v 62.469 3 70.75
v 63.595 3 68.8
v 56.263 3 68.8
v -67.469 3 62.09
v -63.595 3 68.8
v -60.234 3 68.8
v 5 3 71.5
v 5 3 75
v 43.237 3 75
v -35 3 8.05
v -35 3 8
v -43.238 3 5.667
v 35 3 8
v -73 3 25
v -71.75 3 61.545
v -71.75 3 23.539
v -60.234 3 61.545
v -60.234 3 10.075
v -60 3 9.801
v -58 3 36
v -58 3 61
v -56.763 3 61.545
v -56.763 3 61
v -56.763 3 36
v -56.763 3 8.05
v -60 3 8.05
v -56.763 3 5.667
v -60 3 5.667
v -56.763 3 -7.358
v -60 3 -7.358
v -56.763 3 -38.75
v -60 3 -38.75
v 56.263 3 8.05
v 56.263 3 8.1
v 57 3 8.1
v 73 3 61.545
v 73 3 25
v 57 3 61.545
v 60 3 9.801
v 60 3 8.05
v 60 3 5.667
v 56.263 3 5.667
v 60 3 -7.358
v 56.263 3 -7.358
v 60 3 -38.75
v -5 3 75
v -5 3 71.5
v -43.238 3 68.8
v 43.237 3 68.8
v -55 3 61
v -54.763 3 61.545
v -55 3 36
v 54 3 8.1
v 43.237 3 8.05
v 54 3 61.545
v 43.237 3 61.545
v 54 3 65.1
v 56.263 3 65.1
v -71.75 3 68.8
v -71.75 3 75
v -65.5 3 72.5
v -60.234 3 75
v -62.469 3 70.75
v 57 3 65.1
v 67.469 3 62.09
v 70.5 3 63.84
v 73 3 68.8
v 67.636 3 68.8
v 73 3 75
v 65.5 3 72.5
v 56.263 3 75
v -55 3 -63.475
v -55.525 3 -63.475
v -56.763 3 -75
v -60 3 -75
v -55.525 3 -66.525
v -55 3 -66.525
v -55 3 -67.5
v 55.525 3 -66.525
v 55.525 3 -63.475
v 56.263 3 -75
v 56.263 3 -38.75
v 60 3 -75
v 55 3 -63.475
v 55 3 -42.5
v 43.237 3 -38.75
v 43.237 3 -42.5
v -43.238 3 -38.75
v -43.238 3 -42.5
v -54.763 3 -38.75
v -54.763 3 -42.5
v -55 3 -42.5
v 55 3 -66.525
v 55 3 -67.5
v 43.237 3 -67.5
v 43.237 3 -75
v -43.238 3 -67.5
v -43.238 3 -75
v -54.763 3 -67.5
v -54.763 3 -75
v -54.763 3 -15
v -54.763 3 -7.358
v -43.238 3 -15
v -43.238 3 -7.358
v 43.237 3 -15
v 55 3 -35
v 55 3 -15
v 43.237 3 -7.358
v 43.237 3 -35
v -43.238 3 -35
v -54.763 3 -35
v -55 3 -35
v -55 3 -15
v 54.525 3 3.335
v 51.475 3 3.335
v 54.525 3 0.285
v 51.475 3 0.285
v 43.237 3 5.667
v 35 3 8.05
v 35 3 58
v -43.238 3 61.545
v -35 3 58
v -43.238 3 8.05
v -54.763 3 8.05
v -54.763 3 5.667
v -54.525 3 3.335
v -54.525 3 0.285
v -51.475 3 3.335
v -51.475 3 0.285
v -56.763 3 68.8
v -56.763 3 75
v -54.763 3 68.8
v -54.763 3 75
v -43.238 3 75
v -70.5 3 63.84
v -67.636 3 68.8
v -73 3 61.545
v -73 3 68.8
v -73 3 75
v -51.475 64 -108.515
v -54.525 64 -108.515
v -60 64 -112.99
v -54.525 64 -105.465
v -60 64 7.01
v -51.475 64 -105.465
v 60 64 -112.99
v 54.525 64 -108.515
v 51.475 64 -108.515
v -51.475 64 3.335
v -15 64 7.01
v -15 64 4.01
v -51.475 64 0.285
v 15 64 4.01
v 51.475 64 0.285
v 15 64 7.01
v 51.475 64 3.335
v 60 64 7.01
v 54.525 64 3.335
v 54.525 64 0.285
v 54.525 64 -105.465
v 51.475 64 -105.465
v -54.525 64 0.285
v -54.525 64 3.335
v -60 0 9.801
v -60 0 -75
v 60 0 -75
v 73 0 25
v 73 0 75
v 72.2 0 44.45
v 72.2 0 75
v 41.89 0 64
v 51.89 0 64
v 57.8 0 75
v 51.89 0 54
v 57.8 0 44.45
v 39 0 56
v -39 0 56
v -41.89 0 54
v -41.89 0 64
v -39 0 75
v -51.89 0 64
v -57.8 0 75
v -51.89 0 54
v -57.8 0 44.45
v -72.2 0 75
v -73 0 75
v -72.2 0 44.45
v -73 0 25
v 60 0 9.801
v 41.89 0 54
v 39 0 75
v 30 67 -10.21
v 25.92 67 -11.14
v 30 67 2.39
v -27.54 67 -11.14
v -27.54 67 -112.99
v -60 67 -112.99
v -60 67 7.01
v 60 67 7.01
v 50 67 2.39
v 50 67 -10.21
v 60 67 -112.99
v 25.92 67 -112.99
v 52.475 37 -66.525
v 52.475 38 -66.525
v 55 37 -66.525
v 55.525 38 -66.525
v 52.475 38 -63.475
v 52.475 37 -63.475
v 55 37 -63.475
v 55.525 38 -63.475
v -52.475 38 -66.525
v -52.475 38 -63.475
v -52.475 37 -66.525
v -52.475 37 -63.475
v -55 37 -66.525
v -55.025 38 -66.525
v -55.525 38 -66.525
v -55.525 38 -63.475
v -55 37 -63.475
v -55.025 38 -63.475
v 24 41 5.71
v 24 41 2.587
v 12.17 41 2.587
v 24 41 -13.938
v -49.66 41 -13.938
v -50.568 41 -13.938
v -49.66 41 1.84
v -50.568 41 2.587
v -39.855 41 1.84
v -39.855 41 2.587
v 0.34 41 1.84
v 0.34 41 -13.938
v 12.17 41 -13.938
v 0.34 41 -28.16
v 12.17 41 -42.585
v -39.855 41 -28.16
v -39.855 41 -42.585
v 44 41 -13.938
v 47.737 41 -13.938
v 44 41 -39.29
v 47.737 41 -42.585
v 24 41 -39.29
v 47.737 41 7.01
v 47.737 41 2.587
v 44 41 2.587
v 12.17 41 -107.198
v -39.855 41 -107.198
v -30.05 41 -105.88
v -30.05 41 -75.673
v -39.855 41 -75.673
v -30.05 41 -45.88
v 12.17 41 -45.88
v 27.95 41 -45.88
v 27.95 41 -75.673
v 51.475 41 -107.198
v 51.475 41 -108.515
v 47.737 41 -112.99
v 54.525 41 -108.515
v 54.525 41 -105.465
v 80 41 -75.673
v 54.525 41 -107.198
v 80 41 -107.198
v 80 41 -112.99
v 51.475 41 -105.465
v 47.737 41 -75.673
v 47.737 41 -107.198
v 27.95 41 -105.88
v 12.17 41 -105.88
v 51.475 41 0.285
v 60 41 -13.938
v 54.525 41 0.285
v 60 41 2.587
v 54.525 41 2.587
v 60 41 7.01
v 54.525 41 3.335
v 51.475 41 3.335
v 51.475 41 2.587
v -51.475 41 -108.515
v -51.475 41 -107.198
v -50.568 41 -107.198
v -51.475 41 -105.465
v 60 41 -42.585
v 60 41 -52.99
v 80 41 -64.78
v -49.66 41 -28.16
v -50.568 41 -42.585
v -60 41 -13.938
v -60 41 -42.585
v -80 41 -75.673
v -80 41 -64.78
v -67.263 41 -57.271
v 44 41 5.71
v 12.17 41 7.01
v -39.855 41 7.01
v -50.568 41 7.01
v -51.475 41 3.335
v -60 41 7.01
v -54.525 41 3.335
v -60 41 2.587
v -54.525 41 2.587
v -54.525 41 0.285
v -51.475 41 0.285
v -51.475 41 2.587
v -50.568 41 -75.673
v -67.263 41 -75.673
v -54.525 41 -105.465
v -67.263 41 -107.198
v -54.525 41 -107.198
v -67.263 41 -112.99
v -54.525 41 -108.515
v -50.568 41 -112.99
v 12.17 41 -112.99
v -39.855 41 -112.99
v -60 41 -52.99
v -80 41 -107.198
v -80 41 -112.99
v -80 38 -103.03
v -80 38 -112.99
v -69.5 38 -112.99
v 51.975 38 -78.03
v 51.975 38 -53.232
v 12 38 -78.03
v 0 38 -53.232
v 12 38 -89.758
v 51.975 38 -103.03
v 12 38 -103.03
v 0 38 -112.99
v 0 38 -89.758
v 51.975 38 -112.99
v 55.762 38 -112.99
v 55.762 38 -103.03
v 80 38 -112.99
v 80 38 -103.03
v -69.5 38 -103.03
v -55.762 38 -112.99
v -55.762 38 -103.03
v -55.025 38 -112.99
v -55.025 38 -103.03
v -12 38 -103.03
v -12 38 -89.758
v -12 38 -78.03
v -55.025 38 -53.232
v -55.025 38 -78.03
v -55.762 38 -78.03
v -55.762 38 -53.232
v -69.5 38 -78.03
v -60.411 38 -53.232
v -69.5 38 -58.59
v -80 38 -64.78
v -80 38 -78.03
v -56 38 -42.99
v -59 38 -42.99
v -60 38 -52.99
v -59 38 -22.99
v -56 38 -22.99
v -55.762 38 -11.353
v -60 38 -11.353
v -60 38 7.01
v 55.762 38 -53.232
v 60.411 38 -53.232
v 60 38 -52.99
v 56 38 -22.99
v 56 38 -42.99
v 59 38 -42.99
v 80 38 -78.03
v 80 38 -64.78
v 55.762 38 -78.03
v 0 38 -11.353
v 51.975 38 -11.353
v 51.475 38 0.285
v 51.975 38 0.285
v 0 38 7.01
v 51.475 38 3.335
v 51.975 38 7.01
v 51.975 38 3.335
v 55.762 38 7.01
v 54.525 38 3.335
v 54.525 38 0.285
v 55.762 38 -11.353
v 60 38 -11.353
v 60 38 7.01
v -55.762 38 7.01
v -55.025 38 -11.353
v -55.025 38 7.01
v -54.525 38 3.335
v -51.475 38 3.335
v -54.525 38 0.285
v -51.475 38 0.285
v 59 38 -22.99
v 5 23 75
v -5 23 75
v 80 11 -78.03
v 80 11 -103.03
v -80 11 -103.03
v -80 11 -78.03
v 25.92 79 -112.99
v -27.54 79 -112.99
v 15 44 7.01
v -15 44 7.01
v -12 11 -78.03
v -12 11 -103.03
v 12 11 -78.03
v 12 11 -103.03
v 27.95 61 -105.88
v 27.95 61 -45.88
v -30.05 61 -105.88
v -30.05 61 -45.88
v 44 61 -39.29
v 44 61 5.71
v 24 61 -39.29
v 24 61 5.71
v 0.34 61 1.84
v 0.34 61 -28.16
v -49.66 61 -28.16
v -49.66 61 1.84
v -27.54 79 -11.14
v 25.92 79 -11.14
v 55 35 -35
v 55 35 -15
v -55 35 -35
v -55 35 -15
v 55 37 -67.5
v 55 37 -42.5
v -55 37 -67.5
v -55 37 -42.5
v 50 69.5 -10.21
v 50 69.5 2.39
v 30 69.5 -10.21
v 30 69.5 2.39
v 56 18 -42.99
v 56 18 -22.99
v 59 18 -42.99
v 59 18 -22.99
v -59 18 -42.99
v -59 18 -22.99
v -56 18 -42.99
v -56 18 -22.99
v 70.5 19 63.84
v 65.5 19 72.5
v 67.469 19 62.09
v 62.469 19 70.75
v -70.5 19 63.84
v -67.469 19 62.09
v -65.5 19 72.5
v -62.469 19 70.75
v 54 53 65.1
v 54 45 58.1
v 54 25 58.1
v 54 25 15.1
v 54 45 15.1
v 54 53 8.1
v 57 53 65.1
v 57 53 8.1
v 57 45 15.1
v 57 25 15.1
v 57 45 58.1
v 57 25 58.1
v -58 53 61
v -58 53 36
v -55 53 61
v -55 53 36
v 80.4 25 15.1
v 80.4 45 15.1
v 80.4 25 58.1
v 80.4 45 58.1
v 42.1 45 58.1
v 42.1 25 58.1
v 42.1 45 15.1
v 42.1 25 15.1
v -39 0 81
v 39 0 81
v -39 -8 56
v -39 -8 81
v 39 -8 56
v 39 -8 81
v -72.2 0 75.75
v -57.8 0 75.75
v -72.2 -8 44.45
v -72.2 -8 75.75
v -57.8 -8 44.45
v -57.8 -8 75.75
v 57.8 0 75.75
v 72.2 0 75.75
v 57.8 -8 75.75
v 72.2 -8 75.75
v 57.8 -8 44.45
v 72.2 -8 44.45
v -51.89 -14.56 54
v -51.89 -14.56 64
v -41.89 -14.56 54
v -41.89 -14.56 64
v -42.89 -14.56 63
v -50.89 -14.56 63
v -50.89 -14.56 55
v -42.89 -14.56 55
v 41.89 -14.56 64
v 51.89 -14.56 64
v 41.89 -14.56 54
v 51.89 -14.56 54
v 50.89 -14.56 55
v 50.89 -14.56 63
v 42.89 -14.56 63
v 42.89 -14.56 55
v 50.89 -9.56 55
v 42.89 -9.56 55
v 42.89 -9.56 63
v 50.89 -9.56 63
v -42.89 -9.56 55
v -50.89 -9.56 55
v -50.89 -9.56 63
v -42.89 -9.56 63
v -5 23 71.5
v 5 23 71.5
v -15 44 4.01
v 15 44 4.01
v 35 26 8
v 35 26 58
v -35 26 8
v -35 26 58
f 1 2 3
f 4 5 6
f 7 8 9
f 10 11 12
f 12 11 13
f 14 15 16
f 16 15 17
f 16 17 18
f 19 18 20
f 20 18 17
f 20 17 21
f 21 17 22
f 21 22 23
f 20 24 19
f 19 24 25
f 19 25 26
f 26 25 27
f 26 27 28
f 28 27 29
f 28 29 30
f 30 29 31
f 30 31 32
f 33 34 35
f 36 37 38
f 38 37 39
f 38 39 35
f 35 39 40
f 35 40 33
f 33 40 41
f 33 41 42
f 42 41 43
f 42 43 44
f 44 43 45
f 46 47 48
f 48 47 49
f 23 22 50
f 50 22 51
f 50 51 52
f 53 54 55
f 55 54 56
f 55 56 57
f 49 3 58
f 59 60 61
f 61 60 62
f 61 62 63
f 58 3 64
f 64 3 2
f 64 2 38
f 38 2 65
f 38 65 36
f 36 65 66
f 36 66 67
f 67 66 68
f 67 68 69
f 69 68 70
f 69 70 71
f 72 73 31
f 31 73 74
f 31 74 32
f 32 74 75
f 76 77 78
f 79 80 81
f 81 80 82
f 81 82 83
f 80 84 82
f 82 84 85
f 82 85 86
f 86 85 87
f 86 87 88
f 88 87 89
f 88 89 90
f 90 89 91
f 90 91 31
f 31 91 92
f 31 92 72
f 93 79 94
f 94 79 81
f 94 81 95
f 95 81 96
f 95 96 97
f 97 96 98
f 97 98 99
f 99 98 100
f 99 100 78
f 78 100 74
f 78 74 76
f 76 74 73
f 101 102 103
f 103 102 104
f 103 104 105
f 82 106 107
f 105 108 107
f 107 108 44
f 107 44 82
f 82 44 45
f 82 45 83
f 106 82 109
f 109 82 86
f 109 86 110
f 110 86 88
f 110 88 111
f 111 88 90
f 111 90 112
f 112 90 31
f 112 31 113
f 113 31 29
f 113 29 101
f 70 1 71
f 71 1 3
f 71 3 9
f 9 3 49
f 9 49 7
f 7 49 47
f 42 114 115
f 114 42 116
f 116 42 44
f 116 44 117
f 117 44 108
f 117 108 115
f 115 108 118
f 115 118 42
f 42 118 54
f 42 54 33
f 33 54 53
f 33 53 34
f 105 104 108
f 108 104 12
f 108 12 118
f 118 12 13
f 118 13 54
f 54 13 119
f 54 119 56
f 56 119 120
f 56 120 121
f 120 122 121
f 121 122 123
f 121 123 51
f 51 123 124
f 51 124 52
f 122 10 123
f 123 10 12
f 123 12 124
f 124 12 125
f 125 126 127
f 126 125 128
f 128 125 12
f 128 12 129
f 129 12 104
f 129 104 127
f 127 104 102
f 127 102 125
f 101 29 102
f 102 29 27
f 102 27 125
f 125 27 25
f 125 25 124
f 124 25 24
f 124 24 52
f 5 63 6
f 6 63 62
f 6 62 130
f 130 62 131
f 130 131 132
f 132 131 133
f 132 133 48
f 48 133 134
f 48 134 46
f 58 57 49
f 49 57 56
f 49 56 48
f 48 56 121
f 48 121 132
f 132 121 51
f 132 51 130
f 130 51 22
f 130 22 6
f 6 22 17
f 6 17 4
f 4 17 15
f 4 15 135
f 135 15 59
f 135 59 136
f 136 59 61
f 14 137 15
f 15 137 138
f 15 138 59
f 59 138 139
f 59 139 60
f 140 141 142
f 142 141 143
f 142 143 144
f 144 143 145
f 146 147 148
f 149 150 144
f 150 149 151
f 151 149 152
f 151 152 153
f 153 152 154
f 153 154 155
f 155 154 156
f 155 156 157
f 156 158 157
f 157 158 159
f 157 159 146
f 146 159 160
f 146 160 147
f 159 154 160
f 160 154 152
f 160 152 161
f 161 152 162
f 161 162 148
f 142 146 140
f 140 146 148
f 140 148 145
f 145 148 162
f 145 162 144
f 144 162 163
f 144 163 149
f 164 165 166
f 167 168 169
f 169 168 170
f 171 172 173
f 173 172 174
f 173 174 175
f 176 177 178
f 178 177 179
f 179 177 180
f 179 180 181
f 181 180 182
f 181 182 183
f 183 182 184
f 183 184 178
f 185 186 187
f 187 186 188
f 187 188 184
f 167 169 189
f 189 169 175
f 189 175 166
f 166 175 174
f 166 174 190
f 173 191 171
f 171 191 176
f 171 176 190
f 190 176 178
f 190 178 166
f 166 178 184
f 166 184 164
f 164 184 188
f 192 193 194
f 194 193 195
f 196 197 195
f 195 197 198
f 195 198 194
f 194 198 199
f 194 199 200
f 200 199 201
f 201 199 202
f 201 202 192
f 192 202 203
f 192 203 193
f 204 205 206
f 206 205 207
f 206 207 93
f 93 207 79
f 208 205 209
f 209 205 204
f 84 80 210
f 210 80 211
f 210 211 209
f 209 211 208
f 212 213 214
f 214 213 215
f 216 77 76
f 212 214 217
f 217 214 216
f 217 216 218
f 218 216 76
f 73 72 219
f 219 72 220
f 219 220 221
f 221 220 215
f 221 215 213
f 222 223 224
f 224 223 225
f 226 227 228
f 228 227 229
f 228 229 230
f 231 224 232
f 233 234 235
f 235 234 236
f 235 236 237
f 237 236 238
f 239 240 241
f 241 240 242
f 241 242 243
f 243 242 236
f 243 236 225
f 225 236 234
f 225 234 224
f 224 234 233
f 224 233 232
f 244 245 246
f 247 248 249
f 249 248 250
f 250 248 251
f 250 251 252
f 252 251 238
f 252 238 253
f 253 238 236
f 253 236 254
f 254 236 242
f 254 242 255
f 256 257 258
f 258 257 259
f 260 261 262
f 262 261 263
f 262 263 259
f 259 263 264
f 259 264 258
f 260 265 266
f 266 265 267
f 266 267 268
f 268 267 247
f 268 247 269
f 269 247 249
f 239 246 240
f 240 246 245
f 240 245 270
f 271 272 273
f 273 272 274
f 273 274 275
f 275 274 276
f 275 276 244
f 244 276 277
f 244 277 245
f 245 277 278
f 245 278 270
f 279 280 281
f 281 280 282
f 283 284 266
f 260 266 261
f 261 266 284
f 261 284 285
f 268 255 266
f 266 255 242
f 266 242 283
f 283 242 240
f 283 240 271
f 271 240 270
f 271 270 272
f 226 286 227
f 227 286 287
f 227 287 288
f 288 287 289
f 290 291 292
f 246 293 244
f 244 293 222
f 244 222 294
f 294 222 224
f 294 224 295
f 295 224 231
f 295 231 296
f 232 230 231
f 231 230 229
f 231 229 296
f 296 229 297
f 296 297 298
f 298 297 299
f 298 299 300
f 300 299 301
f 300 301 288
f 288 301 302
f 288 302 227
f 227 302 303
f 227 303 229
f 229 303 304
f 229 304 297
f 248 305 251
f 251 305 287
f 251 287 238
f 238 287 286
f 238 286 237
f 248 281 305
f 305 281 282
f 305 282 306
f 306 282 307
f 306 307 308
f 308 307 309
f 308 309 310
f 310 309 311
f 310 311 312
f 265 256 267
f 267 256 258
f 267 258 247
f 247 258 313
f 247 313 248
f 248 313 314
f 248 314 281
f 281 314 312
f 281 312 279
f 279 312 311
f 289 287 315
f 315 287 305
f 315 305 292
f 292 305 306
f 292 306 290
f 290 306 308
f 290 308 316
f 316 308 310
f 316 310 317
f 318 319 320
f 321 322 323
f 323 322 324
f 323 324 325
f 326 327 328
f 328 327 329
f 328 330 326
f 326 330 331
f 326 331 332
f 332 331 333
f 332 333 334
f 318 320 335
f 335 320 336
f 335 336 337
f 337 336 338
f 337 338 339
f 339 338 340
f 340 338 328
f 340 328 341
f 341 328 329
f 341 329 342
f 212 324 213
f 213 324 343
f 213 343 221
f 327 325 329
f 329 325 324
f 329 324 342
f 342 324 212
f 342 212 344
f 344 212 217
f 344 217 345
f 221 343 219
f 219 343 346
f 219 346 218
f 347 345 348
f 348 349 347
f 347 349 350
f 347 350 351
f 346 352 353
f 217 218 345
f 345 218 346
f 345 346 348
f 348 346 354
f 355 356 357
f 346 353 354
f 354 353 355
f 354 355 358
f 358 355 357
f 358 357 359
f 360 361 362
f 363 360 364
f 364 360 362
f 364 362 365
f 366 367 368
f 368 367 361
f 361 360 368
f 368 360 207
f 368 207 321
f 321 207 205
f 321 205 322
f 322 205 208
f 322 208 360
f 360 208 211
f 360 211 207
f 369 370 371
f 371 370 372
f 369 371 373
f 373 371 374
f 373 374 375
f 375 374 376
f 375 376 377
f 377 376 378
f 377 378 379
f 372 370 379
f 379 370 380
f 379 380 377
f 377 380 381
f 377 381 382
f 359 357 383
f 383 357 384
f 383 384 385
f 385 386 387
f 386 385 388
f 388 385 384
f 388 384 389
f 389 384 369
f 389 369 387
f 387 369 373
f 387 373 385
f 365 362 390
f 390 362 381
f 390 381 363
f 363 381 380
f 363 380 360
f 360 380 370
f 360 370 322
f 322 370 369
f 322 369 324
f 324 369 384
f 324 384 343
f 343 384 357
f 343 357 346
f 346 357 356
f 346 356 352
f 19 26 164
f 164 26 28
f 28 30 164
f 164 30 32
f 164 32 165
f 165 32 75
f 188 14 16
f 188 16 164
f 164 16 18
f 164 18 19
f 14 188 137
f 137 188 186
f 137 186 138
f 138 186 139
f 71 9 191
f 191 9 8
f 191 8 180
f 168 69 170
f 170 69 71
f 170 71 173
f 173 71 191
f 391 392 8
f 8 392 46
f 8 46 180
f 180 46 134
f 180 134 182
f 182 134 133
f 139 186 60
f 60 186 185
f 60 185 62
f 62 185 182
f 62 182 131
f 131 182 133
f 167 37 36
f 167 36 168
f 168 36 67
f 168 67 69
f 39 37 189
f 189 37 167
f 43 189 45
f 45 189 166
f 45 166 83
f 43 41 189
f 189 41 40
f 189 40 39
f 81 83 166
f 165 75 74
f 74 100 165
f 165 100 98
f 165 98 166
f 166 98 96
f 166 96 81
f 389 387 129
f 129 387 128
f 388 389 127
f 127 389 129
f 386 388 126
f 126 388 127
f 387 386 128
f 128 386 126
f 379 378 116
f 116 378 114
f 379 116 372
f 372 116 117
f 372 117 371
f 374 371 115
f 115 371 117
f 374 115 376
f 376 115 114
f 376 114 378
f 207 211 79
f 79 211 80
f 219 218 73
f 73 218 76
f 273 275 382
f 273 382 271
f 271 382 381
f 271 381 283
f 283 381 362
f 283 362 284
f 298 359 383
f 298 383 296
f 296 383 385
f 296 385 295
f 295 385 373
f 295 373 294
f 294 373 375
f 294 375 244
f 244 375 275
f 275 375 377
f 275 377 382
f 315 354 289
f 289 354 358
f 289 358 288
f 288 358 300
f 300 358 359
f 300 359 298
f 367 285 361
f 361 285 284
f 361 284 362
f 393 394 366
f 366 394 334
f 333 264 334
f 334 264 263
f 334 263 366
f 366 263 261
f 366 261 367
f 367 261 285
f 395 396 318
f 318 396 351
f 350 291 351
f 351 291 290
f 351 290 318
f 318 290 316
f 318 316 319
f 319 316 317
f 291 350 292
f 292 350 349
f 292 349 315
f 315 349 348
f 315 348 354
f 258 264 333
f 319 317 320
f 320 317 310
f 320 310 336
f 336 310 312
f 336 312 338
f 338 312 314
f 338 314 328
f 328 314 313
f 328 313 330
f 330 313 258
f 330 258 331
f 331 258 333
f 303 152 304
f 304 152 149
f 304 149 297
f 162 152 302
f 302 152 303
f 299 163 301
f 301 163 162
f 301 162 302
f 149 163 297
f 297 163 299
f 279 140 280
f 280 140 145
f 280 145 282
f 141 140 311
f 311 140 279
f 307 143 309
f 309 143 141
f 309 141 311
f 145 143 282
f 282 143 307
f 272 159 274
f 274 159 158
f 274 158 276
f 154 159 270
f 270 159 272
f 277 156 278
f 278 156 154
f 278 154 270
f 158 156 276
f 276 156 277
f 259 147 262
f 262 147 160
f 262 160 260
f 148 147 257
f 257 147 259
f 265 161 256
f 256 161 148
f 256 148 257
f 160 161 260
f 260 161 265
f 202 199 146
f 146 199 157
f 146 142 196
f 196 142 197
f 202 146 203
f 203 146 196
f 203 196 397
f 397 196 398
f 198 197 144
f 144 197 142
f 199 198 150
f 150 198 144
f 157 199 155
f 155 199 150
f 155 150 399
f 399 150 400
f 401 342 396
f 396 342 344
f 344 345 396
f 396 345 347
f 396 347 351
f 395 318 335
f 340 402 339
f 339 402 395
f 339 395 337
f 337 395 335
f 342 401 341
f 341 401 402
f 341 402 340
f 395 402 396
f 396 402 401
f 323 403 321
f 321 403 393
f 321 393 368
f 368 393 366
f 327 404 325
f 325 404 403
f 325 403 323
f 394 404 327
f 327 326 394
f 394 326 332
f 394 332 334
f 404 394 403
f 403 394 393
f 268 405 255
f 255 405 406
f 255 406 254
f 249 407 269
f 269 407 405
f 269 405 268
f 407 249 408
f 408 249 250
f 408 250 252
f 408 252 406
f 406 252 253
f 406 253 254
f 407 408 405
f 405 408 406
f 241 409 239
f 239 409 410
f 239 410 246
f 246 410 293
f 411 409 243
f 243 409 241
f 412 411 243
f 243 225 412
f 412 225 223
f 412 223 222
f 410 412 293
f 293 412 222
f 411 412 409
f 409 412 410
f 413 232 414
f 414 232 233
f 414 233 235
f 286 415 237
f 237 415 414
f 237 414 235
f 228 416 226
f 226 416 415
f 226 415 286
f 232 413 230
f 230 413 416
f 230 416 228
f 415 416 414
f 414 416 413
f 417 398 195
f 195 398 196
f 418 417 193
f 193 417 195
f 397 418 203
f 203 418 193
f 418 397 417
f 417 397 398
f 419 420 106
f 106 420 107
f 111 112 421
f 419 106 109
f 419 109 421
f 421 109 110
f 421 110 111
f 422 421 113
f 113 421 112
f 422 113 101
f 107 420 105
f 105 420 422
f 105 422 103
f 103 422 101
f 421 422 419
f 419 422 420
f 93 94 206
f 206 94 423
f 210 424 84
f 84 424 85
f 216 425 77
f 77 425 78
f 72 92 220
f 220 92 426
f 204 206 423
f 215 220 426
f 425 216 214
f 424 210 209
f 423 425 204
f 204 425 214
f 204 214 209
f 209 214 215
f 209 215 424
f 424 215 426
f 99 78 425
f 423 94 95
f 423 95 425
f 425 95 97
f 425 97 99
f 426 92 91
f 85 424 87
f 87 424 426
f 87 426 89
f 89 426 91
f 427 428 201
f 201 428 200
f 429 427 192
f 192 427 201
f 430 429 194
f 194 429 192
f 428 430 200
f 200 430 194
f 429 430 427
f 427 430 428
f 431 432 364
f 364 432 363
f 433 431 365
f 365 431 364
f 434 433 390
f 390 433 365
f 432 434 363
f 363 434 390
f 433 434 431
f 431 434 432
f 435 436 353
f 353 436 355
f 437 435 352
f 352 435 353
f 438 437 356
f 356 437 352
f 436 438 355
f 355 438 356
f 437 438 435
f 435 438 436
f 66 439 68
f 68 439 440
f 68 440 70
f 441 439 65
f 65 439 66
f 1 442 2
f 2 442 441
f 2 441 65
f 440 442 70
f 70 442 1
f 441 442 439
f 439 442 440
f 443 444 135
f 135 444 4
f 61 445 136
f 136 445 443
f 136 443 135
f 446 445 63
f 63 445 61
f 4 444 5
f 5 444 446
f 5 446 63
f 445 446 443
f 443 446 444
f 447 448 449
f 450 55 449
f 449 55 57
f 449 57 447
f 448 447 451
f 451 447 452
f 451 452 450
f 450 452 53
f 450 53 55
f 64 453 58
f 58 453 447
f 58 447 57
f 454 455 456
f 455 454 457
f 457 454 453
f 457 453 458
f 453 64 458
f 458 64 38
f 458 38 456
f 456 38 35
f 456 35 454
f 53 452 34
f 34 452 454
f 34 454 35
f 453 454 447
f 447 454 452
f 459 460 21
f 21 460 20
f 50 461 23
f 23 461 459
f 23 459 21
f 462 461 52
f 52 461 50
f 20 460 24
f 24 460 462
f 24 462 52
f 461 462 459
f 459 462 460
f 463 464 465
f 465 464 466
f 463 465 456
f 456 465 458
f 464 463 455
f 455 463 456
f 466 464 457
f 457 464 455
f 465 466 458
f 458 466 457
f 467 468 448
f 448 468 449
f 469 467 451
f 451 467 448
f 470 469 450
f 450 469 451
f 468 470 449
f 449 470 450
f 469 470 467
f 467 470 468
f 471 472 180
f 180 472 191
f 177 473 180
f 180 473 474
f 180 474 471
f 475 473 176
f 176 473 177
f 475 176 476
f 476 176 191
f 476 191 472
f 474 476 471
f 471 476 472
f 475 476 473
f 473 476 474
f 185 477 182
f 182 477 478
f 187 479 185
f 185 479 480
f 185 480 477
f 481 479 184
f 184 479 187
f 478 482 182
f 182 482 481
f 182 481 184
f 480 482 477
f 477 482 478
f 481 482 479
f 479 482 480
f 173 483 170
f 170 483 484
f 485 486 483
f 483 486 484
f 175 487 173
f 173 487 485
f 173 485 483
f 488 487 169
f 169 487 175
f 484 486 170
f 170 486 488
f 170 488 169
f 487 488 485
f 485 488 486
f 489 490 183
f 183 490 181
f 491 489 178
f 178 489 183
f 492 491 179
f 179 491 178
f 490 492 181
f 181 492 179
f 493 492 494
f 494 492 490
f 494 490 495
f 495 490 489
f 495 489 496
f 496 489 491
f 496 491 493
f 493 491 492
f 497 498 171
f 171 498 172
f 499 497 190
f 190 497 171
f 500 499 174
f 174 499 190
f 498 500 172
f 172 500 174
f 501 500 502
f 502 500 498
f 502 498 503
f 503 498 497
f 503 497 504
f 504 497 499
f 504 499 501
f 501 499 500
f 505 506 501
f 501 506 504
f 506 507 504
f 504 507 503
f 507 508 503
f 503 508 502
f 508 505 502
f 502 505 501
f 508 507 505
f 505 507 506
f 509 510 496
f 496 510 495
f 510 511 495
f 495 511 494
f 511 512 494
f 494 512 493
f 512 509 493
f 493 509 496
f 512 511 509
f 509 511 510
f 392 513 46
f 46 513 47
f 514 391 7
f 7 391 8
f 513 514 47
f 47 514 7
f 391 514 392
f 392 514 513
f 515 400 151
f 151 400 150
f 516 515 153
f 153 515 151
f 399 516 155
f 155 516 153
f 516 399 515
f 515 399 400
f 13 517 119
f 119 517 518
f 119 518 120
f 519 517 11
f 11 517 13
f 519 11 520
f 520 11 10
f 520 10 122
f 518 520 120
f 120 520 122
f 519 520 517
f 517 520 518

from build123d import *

# Parameters (mm, degrees)
BOSS_EXTRUDE1_DEPTH       = 3
SKETCH2_W                 = 3.05
SKETCH2_H                 = 3.05
BOSS_EXTRUDE2_DEPTH       = 35
SKETCH3_W                 = 120
SKETCH3_H                 = 120
BOSS_EXTRUDE3_DEPTH       = 3
SKETCH4_W                 = 3.05
SKETCH4_H                 = 3.05
BOSS_EXTRUDE4_DEPTH       = 23
SKETCH6_W                 = 120
SKETCH6_H                 = 120
BOSS_EXTRUDE5_DEPTH       = 3
SKETCH7_W                 = 68
SKETCH7_H                 = 25
BOSS_EXTRUDE6_DEPTH       = 27
SKETCH9_W                 = 58
SKETCH9_H                 = 60
SKETCH9_W_2               = 20
SKETCH9_H_2               = 45
SKETCH9_W_3               = 50
SKETCH9_H_3               = 30
BOSS_EXTRUDE7_DEPTH       = 20
SKETCH10_W                = 53.46
SKETCH10_H                = 101.85
BOSS_EXTRUDE8_DEPTH       = 12
SKETCH11_W                = 110
SKETCH11_H                = 20
BOSS_EXTRUDE9_DEPTH       = 32
SKETCH12_W                = 110
SKETCH12_H                = 25
BOSS_EXTRUDE10_DEPTH      = 34
SKETCH13_W                = 20
SKETCH13_H                = 12.6
BOSS_EXTRUDE11_DEPTH      = 2.5
SKETCH14_W                = 3
SKETCH14_H                = 20
BOSS_EXTRUDE12_DEPTH      = 20
BOSS_EXTRUDE13_DEPTH      = 16
SKETCH16_W                = 3
SKETCH16_H                = 57
SKETCH16_H_2              = 25
BOSS_EXTRUDE14_DEPTH      = 50
BOSS_EXTRUDE15_DEPTH      = 23.4
BOSS_EXTRUDE15_DEPTH_BACK = 14.9
SKETCH17_W                = 43
SKETCH17_H                = 20
SKETCH18_W                = 78
SKETCH18_H                = 25
SKETCH18_W_2              = 14.4
SKETCH18_H_2              = 31.3
BOSS_EXTRUDE16_DEPTH      = 8
SKETCH20_W                = 10
SKETCH20_H                = 10
BOSS_EXTRUDE18_DEPTH      = 14.56
SKETCH21_W                = 8
SKETCH21_H                = 8
CUT_EXTRUDE1_DEPTH        = 5
SKETCH22_W                = 10
SKETCH22_H                = 3.5
BOSS_EXTRUDE19_DEPTH      = 20
SKETCH23_W                = 30
SKETCH23_H                = 3
BOSS_EXTRUDE20_DEPTH      = 20
SKETCH24_W                = 70
SKETCH24_H                = 50
BOSS_EXTRUDE21_DEPTH      = 23


with BuildPart() as part:
    # Sketch1 → Boss-Extrude1 (new body)
    with BuildSketch(Plane(origin=(0, 0, 0), x_dir=(1, 0, 0), z_dir=(0, 1, 0))):
        Polygon((-73, -25), (-60, -9.801315846), (-60, 75), (60, 75), (60, -9.801315846), (73, -25), (73, -75), (60, -75), (-60, -75), (-73, -75), align=None)
    extrude(amount=BOSS_EXTRUDE1_DEPTH)

    # Sketch2 → Boss-Extrude2 (add)
    with BuildSketch(Plane(origin=(0, 3, 0), x_dir=(1, 0, 0), z_dir=(0, 1, 0))):
        with Locations((-53, -1.81)):
            Rectangle(SKETCH2_W, SKETCH2_H)
        with Locations((53, -1.81)):
            Rectangle(SKETCH2_W, SKETCH2_H)
        with Locations((54, 65)):
            Rectangle(SKETCH2_W, SKETCH2_H)
        with Locations((-54, 65)):
            Rectangle(SKETCH2_W, SKETCH2_H)
    extrude(amount=BOSS_EXTRUDE2_DEPTH)

    # Sketch3 → Boss-Extrude3 (add)
    with BuildSketch(Plane(origin=(0, 38, 0), x_dir=(1, 0, 0), z_dir=(0, 1, 0))):
        Polygon((-80, 64.780305915), (-60, 52.99), (-60, 112.99), (-80, 112.99), align=None)
        with Locations((0, 52.99)):
            Rectangle(SKETCH3_W, SKETCH3_H)
        Polygon((60, 112.99), (60, 52.99), (80, 64.780305915), (80, 112.99), align=None)
    extrude(amount=BOSS_EXTRUDE3_DEPTH)

    # Sketch4 → Boss-Extrude4 (add)
    with BuildSketch(Plane(origin=(0, 41, 0), x_dir=(1, 0, 0), z_dir=(0, 1, 0))):
        with Locations((-53, -1.81)):
            Rectangle(SKETCH4_W, SKETCH4_H)
        with Locations((-53, 106.99)):
            Rectangle(SKETCH4_W, SKETCH4_H)
        with Locations((53, -1.81)):
            Rectangle(SKETCH4_W, SKETCH4_H)
        with Locations((53, 106.99)):
            Rectangle(SKETCH4_W, SKETCH4_H)
    extrude(amount=BOSS_EXTRUDE4_DEPTH)

    # Sketch6 → Boss-Extrude5 (add)
    with BuildSketch(Plane(origin=(0, 64, 0), x_dir=(1, 0, 0), z_dir=(0, 1, 0))):
        with Locations((0, 52.99)):
            Rectangle(SKETCH6_W, SKETCH6_H)
    extrude(amount=BOSS_EXTRUDE5_DEPTH)

    # Sketch7 → Boss-Extrude6 (add)
    with BuildSketch(Plane.XZ.offset(-38)):
        with Locations((-46, -90.53)):
            Rectangle(SKETCH7_W, SKETCH7_H)
        with Locations((46, -90.53)):
            Rectangle(SKETCH7_W, SKETCH7_H)
    extrude(amount=BOSS_EXTRUDE6_DEPTH)

    # Sketch9 → Boss-Extrude7 (add)
    with BuildSketch(Plane(origin=(0, 41, 0), x_dir=(1, 0, 0), z_dir=(0, 1, 0))):
        with Locations((-1.05, 75.88)):
            Rectangle(SKETCH9_W, SKETCH9_H)
        with Locations((34, 16.79)):
            Rectangle(SKETCH9_W_2, SKETCH9_H_2)
        with Locations((-24.66, 13.16)):
            Rectangle(SKETCH9_W_3, SKETCH9_H_3)
    extrude(amount=BOSS_EXTRUDE7_DEPTH)

    # Sketch10 → Boss-Extrude8 (add)
    with BuildSketch(Plane(origin=(0, 67, 0), x_dir=(1, 0, 0), z_dir=(0, 1, 0))):
        with Locations((-0.81, 62.065)):
            Rectangle(SKETCH10_W, SKETCH10_H)
    extrude(amount=BOSS_EXTRUDE8_DEPTH)

    # Sketch11 → Boss-Extrude9 (add)
    with BuildSketch(Plane(origin=(0, 3, 0), x_dir=(1, 0, 0), z_dir=(0, 1, 0))):
        with Locations((0, 25)):
            Rectangle(SKETCH11_W, SKETCH11_H)
    extrude(amount=BOSS_EXTRUDE9_DEPTH)

    # Sketch12 → Boss-Extrude10 (add)
    with BuildSketch(Plane(origin=(0, 3, 0), x_dir=(1, 0, 0), z_dir=(0, 1, 0))):
        with Locations((0, 55)):
            Rectangle(SKETCH12_W, SKETCH12_H)
    extrude(amount=BOSS_EXTRUDE10_DEPTH)

    # Sketch13 → Boss-Extrude11 (add)
    with BuildSketch(Plane(origin=(0, 67, 0), x_dir=(1, 0, 0), z_dir=(0, 1, 0))):
        with Locations((40, 3.91)):
            Rectangle(SKETCH13_W, SKETCH13_H)
    extrude(amount=BOSS_EXTRUDE11_DEPTH)

    # Sketch14 → Boss-Extrude12 (add)
    with BuildSketch(Plane(origin=(0, 38, 0), x_dir=(1, 0, 0), z_dir=(0, 1, 0))):
        with Locations((57.5, 32.99)):
            Rectangle(SKETCH14_W, SKETCH14_H)
        with Locations((-57.5, 32.99)):
            Rectangle(SKETCH14_W, SKETCH14_H)
    extrude(amount=-BOSS_EXTRUDE12_DEPTH)

    # Sketch15 → Boss-Extrude13 (add)
    with BuildSketch(Plane(origin=(0, 3, 0), x_dir=(1, 0, 0), z_dir=(0, 1, 0))):
        Polygon((65.5, -72.5), (62.468911087, -70.75), (67.468911087, -62.089745962), (70.5, -63.839745962), align=None)
        Polygon((-70.5, -63.839745962), (-65.5, -72.5), (-62.468911087, -70.75), (-67.468911087, -62.089745962), align=None)
    extrude(amount=BOSS_EXTRUDE13_DEPTH)

    # Sketch16 → Boss-Extrude14 (add)
    with BuildSketch(Plane(origin=(0, 3, 0), x_dir=(1, 0, 0), z_dir=(0, 1, 0))):
        with Locations((55.5, -36.6)):
            Rectangle(SKETCH16_W, SKETCH16_H)
        with Locations((-56.5, -48.5)):
            Rectangle(SKETCH16_W, SKETCH16_H_2)
    extrude(amount=BOSS_EXTRUDE14_DEPTH)

    # Sketch17 → Boss-Extrude15 (add, two sides: drawn at the far end of the back side and taken through both)
    with BuildSketch(Plane(origin=(57, 0, 0), x_dir=(0, 0, -1), z_dir=(1, 0, 0)).offset(-BOSS_EXTRUDE15_DEPTH_BACK)):
        with Locations((-36.6, 35)):
            Rectangle(SKETCH17_W, SKETCH17_H)
    extrude(amount=BOSS_EXTRUDE15_DEPTH + BOSS_EXTRUDE15_DEPTH_BACK)

    # Sketch18 → Boss-Extrude16 (add)
    with BuildSketch(Plane.XZ):
        with Locations((0, 68.5)):
            Rectangle(SKETCH18_W, SKETCH18_H)
        with Locations((-65, 60.1)):
            Rectangle(SKETCH18_W_2, SKETCH18_H_2)
        with Locations((65, 60.1)):
            Rectangle(SKETCH18_W_2, SKETCH18_H_2)
    extrude(amount=BOSS_EXTRUDE16_DEPTH)

    # Sketch20 → Boss-Extrude18 (add)
    with BuildSketch(Plane.XZ):
        with Locations((-46.89, 59)):
            Rectangle(SKETCH20_W, SKETCH20_H)
        with Locations((46.89, 59)):
            Rectangle(SKETCH20_W, SKETCH20_H)
    extrude(amount=BOSS_EXTRUDE18_DEPTH)

    # Sketch21 → Cut-Extrude1 (cut)
    with BuildSketch(Plane.XZ.offset(14.56)):
        with Locations((46.89, 59)):
            Rectangle(SKETCH21_W, SKETCH21_H)
        with Locations((-46.89, 59)):
            Rectangle(SKETCH21_W, SKETCH21_H)
    extrude(amount=-CUT_EXTRUDE1_DEPTH, mode=Mode.SUBTRACT)

    # Sketch22 → Boss-Extrude19 (add)
    with BuildSketch(Plane(origin=(0, 3, 0), x_dir=(1, 0, 0), z_dir=(0, 1, 0))):
        with Locations((0, -73.25)):
            Rectangle(SKETCH22_W, SKETCH22_H)
    extrude(amount=BOSS_EXTRUDE19_DEPTH)

    # Sketch23 → Boss-Extrude20 (add)
    with BuildSketch(Plane.XZ.offset(-64)):
        with Locations((0, 5.51)):
            Rectangle(SKETCH23_W, SKETCH23_H)
    extrude(amount=BOSS_EXTRUDE20_DEPTH)

    # Sketch24 → Boss-Extrude21 (add)
    with BuildSketch(Plane(origin=(0, 3, 0), x_dir=(1, 0, 0), z_dir=(0, 1, 0))):
        with Locations((0, -33)):
            Rectangle(SKETCH24_W, SKETCH24_H)
    extrude(amount=BOSS_EXTRUDE21_DEPTH)


solid = part.part
